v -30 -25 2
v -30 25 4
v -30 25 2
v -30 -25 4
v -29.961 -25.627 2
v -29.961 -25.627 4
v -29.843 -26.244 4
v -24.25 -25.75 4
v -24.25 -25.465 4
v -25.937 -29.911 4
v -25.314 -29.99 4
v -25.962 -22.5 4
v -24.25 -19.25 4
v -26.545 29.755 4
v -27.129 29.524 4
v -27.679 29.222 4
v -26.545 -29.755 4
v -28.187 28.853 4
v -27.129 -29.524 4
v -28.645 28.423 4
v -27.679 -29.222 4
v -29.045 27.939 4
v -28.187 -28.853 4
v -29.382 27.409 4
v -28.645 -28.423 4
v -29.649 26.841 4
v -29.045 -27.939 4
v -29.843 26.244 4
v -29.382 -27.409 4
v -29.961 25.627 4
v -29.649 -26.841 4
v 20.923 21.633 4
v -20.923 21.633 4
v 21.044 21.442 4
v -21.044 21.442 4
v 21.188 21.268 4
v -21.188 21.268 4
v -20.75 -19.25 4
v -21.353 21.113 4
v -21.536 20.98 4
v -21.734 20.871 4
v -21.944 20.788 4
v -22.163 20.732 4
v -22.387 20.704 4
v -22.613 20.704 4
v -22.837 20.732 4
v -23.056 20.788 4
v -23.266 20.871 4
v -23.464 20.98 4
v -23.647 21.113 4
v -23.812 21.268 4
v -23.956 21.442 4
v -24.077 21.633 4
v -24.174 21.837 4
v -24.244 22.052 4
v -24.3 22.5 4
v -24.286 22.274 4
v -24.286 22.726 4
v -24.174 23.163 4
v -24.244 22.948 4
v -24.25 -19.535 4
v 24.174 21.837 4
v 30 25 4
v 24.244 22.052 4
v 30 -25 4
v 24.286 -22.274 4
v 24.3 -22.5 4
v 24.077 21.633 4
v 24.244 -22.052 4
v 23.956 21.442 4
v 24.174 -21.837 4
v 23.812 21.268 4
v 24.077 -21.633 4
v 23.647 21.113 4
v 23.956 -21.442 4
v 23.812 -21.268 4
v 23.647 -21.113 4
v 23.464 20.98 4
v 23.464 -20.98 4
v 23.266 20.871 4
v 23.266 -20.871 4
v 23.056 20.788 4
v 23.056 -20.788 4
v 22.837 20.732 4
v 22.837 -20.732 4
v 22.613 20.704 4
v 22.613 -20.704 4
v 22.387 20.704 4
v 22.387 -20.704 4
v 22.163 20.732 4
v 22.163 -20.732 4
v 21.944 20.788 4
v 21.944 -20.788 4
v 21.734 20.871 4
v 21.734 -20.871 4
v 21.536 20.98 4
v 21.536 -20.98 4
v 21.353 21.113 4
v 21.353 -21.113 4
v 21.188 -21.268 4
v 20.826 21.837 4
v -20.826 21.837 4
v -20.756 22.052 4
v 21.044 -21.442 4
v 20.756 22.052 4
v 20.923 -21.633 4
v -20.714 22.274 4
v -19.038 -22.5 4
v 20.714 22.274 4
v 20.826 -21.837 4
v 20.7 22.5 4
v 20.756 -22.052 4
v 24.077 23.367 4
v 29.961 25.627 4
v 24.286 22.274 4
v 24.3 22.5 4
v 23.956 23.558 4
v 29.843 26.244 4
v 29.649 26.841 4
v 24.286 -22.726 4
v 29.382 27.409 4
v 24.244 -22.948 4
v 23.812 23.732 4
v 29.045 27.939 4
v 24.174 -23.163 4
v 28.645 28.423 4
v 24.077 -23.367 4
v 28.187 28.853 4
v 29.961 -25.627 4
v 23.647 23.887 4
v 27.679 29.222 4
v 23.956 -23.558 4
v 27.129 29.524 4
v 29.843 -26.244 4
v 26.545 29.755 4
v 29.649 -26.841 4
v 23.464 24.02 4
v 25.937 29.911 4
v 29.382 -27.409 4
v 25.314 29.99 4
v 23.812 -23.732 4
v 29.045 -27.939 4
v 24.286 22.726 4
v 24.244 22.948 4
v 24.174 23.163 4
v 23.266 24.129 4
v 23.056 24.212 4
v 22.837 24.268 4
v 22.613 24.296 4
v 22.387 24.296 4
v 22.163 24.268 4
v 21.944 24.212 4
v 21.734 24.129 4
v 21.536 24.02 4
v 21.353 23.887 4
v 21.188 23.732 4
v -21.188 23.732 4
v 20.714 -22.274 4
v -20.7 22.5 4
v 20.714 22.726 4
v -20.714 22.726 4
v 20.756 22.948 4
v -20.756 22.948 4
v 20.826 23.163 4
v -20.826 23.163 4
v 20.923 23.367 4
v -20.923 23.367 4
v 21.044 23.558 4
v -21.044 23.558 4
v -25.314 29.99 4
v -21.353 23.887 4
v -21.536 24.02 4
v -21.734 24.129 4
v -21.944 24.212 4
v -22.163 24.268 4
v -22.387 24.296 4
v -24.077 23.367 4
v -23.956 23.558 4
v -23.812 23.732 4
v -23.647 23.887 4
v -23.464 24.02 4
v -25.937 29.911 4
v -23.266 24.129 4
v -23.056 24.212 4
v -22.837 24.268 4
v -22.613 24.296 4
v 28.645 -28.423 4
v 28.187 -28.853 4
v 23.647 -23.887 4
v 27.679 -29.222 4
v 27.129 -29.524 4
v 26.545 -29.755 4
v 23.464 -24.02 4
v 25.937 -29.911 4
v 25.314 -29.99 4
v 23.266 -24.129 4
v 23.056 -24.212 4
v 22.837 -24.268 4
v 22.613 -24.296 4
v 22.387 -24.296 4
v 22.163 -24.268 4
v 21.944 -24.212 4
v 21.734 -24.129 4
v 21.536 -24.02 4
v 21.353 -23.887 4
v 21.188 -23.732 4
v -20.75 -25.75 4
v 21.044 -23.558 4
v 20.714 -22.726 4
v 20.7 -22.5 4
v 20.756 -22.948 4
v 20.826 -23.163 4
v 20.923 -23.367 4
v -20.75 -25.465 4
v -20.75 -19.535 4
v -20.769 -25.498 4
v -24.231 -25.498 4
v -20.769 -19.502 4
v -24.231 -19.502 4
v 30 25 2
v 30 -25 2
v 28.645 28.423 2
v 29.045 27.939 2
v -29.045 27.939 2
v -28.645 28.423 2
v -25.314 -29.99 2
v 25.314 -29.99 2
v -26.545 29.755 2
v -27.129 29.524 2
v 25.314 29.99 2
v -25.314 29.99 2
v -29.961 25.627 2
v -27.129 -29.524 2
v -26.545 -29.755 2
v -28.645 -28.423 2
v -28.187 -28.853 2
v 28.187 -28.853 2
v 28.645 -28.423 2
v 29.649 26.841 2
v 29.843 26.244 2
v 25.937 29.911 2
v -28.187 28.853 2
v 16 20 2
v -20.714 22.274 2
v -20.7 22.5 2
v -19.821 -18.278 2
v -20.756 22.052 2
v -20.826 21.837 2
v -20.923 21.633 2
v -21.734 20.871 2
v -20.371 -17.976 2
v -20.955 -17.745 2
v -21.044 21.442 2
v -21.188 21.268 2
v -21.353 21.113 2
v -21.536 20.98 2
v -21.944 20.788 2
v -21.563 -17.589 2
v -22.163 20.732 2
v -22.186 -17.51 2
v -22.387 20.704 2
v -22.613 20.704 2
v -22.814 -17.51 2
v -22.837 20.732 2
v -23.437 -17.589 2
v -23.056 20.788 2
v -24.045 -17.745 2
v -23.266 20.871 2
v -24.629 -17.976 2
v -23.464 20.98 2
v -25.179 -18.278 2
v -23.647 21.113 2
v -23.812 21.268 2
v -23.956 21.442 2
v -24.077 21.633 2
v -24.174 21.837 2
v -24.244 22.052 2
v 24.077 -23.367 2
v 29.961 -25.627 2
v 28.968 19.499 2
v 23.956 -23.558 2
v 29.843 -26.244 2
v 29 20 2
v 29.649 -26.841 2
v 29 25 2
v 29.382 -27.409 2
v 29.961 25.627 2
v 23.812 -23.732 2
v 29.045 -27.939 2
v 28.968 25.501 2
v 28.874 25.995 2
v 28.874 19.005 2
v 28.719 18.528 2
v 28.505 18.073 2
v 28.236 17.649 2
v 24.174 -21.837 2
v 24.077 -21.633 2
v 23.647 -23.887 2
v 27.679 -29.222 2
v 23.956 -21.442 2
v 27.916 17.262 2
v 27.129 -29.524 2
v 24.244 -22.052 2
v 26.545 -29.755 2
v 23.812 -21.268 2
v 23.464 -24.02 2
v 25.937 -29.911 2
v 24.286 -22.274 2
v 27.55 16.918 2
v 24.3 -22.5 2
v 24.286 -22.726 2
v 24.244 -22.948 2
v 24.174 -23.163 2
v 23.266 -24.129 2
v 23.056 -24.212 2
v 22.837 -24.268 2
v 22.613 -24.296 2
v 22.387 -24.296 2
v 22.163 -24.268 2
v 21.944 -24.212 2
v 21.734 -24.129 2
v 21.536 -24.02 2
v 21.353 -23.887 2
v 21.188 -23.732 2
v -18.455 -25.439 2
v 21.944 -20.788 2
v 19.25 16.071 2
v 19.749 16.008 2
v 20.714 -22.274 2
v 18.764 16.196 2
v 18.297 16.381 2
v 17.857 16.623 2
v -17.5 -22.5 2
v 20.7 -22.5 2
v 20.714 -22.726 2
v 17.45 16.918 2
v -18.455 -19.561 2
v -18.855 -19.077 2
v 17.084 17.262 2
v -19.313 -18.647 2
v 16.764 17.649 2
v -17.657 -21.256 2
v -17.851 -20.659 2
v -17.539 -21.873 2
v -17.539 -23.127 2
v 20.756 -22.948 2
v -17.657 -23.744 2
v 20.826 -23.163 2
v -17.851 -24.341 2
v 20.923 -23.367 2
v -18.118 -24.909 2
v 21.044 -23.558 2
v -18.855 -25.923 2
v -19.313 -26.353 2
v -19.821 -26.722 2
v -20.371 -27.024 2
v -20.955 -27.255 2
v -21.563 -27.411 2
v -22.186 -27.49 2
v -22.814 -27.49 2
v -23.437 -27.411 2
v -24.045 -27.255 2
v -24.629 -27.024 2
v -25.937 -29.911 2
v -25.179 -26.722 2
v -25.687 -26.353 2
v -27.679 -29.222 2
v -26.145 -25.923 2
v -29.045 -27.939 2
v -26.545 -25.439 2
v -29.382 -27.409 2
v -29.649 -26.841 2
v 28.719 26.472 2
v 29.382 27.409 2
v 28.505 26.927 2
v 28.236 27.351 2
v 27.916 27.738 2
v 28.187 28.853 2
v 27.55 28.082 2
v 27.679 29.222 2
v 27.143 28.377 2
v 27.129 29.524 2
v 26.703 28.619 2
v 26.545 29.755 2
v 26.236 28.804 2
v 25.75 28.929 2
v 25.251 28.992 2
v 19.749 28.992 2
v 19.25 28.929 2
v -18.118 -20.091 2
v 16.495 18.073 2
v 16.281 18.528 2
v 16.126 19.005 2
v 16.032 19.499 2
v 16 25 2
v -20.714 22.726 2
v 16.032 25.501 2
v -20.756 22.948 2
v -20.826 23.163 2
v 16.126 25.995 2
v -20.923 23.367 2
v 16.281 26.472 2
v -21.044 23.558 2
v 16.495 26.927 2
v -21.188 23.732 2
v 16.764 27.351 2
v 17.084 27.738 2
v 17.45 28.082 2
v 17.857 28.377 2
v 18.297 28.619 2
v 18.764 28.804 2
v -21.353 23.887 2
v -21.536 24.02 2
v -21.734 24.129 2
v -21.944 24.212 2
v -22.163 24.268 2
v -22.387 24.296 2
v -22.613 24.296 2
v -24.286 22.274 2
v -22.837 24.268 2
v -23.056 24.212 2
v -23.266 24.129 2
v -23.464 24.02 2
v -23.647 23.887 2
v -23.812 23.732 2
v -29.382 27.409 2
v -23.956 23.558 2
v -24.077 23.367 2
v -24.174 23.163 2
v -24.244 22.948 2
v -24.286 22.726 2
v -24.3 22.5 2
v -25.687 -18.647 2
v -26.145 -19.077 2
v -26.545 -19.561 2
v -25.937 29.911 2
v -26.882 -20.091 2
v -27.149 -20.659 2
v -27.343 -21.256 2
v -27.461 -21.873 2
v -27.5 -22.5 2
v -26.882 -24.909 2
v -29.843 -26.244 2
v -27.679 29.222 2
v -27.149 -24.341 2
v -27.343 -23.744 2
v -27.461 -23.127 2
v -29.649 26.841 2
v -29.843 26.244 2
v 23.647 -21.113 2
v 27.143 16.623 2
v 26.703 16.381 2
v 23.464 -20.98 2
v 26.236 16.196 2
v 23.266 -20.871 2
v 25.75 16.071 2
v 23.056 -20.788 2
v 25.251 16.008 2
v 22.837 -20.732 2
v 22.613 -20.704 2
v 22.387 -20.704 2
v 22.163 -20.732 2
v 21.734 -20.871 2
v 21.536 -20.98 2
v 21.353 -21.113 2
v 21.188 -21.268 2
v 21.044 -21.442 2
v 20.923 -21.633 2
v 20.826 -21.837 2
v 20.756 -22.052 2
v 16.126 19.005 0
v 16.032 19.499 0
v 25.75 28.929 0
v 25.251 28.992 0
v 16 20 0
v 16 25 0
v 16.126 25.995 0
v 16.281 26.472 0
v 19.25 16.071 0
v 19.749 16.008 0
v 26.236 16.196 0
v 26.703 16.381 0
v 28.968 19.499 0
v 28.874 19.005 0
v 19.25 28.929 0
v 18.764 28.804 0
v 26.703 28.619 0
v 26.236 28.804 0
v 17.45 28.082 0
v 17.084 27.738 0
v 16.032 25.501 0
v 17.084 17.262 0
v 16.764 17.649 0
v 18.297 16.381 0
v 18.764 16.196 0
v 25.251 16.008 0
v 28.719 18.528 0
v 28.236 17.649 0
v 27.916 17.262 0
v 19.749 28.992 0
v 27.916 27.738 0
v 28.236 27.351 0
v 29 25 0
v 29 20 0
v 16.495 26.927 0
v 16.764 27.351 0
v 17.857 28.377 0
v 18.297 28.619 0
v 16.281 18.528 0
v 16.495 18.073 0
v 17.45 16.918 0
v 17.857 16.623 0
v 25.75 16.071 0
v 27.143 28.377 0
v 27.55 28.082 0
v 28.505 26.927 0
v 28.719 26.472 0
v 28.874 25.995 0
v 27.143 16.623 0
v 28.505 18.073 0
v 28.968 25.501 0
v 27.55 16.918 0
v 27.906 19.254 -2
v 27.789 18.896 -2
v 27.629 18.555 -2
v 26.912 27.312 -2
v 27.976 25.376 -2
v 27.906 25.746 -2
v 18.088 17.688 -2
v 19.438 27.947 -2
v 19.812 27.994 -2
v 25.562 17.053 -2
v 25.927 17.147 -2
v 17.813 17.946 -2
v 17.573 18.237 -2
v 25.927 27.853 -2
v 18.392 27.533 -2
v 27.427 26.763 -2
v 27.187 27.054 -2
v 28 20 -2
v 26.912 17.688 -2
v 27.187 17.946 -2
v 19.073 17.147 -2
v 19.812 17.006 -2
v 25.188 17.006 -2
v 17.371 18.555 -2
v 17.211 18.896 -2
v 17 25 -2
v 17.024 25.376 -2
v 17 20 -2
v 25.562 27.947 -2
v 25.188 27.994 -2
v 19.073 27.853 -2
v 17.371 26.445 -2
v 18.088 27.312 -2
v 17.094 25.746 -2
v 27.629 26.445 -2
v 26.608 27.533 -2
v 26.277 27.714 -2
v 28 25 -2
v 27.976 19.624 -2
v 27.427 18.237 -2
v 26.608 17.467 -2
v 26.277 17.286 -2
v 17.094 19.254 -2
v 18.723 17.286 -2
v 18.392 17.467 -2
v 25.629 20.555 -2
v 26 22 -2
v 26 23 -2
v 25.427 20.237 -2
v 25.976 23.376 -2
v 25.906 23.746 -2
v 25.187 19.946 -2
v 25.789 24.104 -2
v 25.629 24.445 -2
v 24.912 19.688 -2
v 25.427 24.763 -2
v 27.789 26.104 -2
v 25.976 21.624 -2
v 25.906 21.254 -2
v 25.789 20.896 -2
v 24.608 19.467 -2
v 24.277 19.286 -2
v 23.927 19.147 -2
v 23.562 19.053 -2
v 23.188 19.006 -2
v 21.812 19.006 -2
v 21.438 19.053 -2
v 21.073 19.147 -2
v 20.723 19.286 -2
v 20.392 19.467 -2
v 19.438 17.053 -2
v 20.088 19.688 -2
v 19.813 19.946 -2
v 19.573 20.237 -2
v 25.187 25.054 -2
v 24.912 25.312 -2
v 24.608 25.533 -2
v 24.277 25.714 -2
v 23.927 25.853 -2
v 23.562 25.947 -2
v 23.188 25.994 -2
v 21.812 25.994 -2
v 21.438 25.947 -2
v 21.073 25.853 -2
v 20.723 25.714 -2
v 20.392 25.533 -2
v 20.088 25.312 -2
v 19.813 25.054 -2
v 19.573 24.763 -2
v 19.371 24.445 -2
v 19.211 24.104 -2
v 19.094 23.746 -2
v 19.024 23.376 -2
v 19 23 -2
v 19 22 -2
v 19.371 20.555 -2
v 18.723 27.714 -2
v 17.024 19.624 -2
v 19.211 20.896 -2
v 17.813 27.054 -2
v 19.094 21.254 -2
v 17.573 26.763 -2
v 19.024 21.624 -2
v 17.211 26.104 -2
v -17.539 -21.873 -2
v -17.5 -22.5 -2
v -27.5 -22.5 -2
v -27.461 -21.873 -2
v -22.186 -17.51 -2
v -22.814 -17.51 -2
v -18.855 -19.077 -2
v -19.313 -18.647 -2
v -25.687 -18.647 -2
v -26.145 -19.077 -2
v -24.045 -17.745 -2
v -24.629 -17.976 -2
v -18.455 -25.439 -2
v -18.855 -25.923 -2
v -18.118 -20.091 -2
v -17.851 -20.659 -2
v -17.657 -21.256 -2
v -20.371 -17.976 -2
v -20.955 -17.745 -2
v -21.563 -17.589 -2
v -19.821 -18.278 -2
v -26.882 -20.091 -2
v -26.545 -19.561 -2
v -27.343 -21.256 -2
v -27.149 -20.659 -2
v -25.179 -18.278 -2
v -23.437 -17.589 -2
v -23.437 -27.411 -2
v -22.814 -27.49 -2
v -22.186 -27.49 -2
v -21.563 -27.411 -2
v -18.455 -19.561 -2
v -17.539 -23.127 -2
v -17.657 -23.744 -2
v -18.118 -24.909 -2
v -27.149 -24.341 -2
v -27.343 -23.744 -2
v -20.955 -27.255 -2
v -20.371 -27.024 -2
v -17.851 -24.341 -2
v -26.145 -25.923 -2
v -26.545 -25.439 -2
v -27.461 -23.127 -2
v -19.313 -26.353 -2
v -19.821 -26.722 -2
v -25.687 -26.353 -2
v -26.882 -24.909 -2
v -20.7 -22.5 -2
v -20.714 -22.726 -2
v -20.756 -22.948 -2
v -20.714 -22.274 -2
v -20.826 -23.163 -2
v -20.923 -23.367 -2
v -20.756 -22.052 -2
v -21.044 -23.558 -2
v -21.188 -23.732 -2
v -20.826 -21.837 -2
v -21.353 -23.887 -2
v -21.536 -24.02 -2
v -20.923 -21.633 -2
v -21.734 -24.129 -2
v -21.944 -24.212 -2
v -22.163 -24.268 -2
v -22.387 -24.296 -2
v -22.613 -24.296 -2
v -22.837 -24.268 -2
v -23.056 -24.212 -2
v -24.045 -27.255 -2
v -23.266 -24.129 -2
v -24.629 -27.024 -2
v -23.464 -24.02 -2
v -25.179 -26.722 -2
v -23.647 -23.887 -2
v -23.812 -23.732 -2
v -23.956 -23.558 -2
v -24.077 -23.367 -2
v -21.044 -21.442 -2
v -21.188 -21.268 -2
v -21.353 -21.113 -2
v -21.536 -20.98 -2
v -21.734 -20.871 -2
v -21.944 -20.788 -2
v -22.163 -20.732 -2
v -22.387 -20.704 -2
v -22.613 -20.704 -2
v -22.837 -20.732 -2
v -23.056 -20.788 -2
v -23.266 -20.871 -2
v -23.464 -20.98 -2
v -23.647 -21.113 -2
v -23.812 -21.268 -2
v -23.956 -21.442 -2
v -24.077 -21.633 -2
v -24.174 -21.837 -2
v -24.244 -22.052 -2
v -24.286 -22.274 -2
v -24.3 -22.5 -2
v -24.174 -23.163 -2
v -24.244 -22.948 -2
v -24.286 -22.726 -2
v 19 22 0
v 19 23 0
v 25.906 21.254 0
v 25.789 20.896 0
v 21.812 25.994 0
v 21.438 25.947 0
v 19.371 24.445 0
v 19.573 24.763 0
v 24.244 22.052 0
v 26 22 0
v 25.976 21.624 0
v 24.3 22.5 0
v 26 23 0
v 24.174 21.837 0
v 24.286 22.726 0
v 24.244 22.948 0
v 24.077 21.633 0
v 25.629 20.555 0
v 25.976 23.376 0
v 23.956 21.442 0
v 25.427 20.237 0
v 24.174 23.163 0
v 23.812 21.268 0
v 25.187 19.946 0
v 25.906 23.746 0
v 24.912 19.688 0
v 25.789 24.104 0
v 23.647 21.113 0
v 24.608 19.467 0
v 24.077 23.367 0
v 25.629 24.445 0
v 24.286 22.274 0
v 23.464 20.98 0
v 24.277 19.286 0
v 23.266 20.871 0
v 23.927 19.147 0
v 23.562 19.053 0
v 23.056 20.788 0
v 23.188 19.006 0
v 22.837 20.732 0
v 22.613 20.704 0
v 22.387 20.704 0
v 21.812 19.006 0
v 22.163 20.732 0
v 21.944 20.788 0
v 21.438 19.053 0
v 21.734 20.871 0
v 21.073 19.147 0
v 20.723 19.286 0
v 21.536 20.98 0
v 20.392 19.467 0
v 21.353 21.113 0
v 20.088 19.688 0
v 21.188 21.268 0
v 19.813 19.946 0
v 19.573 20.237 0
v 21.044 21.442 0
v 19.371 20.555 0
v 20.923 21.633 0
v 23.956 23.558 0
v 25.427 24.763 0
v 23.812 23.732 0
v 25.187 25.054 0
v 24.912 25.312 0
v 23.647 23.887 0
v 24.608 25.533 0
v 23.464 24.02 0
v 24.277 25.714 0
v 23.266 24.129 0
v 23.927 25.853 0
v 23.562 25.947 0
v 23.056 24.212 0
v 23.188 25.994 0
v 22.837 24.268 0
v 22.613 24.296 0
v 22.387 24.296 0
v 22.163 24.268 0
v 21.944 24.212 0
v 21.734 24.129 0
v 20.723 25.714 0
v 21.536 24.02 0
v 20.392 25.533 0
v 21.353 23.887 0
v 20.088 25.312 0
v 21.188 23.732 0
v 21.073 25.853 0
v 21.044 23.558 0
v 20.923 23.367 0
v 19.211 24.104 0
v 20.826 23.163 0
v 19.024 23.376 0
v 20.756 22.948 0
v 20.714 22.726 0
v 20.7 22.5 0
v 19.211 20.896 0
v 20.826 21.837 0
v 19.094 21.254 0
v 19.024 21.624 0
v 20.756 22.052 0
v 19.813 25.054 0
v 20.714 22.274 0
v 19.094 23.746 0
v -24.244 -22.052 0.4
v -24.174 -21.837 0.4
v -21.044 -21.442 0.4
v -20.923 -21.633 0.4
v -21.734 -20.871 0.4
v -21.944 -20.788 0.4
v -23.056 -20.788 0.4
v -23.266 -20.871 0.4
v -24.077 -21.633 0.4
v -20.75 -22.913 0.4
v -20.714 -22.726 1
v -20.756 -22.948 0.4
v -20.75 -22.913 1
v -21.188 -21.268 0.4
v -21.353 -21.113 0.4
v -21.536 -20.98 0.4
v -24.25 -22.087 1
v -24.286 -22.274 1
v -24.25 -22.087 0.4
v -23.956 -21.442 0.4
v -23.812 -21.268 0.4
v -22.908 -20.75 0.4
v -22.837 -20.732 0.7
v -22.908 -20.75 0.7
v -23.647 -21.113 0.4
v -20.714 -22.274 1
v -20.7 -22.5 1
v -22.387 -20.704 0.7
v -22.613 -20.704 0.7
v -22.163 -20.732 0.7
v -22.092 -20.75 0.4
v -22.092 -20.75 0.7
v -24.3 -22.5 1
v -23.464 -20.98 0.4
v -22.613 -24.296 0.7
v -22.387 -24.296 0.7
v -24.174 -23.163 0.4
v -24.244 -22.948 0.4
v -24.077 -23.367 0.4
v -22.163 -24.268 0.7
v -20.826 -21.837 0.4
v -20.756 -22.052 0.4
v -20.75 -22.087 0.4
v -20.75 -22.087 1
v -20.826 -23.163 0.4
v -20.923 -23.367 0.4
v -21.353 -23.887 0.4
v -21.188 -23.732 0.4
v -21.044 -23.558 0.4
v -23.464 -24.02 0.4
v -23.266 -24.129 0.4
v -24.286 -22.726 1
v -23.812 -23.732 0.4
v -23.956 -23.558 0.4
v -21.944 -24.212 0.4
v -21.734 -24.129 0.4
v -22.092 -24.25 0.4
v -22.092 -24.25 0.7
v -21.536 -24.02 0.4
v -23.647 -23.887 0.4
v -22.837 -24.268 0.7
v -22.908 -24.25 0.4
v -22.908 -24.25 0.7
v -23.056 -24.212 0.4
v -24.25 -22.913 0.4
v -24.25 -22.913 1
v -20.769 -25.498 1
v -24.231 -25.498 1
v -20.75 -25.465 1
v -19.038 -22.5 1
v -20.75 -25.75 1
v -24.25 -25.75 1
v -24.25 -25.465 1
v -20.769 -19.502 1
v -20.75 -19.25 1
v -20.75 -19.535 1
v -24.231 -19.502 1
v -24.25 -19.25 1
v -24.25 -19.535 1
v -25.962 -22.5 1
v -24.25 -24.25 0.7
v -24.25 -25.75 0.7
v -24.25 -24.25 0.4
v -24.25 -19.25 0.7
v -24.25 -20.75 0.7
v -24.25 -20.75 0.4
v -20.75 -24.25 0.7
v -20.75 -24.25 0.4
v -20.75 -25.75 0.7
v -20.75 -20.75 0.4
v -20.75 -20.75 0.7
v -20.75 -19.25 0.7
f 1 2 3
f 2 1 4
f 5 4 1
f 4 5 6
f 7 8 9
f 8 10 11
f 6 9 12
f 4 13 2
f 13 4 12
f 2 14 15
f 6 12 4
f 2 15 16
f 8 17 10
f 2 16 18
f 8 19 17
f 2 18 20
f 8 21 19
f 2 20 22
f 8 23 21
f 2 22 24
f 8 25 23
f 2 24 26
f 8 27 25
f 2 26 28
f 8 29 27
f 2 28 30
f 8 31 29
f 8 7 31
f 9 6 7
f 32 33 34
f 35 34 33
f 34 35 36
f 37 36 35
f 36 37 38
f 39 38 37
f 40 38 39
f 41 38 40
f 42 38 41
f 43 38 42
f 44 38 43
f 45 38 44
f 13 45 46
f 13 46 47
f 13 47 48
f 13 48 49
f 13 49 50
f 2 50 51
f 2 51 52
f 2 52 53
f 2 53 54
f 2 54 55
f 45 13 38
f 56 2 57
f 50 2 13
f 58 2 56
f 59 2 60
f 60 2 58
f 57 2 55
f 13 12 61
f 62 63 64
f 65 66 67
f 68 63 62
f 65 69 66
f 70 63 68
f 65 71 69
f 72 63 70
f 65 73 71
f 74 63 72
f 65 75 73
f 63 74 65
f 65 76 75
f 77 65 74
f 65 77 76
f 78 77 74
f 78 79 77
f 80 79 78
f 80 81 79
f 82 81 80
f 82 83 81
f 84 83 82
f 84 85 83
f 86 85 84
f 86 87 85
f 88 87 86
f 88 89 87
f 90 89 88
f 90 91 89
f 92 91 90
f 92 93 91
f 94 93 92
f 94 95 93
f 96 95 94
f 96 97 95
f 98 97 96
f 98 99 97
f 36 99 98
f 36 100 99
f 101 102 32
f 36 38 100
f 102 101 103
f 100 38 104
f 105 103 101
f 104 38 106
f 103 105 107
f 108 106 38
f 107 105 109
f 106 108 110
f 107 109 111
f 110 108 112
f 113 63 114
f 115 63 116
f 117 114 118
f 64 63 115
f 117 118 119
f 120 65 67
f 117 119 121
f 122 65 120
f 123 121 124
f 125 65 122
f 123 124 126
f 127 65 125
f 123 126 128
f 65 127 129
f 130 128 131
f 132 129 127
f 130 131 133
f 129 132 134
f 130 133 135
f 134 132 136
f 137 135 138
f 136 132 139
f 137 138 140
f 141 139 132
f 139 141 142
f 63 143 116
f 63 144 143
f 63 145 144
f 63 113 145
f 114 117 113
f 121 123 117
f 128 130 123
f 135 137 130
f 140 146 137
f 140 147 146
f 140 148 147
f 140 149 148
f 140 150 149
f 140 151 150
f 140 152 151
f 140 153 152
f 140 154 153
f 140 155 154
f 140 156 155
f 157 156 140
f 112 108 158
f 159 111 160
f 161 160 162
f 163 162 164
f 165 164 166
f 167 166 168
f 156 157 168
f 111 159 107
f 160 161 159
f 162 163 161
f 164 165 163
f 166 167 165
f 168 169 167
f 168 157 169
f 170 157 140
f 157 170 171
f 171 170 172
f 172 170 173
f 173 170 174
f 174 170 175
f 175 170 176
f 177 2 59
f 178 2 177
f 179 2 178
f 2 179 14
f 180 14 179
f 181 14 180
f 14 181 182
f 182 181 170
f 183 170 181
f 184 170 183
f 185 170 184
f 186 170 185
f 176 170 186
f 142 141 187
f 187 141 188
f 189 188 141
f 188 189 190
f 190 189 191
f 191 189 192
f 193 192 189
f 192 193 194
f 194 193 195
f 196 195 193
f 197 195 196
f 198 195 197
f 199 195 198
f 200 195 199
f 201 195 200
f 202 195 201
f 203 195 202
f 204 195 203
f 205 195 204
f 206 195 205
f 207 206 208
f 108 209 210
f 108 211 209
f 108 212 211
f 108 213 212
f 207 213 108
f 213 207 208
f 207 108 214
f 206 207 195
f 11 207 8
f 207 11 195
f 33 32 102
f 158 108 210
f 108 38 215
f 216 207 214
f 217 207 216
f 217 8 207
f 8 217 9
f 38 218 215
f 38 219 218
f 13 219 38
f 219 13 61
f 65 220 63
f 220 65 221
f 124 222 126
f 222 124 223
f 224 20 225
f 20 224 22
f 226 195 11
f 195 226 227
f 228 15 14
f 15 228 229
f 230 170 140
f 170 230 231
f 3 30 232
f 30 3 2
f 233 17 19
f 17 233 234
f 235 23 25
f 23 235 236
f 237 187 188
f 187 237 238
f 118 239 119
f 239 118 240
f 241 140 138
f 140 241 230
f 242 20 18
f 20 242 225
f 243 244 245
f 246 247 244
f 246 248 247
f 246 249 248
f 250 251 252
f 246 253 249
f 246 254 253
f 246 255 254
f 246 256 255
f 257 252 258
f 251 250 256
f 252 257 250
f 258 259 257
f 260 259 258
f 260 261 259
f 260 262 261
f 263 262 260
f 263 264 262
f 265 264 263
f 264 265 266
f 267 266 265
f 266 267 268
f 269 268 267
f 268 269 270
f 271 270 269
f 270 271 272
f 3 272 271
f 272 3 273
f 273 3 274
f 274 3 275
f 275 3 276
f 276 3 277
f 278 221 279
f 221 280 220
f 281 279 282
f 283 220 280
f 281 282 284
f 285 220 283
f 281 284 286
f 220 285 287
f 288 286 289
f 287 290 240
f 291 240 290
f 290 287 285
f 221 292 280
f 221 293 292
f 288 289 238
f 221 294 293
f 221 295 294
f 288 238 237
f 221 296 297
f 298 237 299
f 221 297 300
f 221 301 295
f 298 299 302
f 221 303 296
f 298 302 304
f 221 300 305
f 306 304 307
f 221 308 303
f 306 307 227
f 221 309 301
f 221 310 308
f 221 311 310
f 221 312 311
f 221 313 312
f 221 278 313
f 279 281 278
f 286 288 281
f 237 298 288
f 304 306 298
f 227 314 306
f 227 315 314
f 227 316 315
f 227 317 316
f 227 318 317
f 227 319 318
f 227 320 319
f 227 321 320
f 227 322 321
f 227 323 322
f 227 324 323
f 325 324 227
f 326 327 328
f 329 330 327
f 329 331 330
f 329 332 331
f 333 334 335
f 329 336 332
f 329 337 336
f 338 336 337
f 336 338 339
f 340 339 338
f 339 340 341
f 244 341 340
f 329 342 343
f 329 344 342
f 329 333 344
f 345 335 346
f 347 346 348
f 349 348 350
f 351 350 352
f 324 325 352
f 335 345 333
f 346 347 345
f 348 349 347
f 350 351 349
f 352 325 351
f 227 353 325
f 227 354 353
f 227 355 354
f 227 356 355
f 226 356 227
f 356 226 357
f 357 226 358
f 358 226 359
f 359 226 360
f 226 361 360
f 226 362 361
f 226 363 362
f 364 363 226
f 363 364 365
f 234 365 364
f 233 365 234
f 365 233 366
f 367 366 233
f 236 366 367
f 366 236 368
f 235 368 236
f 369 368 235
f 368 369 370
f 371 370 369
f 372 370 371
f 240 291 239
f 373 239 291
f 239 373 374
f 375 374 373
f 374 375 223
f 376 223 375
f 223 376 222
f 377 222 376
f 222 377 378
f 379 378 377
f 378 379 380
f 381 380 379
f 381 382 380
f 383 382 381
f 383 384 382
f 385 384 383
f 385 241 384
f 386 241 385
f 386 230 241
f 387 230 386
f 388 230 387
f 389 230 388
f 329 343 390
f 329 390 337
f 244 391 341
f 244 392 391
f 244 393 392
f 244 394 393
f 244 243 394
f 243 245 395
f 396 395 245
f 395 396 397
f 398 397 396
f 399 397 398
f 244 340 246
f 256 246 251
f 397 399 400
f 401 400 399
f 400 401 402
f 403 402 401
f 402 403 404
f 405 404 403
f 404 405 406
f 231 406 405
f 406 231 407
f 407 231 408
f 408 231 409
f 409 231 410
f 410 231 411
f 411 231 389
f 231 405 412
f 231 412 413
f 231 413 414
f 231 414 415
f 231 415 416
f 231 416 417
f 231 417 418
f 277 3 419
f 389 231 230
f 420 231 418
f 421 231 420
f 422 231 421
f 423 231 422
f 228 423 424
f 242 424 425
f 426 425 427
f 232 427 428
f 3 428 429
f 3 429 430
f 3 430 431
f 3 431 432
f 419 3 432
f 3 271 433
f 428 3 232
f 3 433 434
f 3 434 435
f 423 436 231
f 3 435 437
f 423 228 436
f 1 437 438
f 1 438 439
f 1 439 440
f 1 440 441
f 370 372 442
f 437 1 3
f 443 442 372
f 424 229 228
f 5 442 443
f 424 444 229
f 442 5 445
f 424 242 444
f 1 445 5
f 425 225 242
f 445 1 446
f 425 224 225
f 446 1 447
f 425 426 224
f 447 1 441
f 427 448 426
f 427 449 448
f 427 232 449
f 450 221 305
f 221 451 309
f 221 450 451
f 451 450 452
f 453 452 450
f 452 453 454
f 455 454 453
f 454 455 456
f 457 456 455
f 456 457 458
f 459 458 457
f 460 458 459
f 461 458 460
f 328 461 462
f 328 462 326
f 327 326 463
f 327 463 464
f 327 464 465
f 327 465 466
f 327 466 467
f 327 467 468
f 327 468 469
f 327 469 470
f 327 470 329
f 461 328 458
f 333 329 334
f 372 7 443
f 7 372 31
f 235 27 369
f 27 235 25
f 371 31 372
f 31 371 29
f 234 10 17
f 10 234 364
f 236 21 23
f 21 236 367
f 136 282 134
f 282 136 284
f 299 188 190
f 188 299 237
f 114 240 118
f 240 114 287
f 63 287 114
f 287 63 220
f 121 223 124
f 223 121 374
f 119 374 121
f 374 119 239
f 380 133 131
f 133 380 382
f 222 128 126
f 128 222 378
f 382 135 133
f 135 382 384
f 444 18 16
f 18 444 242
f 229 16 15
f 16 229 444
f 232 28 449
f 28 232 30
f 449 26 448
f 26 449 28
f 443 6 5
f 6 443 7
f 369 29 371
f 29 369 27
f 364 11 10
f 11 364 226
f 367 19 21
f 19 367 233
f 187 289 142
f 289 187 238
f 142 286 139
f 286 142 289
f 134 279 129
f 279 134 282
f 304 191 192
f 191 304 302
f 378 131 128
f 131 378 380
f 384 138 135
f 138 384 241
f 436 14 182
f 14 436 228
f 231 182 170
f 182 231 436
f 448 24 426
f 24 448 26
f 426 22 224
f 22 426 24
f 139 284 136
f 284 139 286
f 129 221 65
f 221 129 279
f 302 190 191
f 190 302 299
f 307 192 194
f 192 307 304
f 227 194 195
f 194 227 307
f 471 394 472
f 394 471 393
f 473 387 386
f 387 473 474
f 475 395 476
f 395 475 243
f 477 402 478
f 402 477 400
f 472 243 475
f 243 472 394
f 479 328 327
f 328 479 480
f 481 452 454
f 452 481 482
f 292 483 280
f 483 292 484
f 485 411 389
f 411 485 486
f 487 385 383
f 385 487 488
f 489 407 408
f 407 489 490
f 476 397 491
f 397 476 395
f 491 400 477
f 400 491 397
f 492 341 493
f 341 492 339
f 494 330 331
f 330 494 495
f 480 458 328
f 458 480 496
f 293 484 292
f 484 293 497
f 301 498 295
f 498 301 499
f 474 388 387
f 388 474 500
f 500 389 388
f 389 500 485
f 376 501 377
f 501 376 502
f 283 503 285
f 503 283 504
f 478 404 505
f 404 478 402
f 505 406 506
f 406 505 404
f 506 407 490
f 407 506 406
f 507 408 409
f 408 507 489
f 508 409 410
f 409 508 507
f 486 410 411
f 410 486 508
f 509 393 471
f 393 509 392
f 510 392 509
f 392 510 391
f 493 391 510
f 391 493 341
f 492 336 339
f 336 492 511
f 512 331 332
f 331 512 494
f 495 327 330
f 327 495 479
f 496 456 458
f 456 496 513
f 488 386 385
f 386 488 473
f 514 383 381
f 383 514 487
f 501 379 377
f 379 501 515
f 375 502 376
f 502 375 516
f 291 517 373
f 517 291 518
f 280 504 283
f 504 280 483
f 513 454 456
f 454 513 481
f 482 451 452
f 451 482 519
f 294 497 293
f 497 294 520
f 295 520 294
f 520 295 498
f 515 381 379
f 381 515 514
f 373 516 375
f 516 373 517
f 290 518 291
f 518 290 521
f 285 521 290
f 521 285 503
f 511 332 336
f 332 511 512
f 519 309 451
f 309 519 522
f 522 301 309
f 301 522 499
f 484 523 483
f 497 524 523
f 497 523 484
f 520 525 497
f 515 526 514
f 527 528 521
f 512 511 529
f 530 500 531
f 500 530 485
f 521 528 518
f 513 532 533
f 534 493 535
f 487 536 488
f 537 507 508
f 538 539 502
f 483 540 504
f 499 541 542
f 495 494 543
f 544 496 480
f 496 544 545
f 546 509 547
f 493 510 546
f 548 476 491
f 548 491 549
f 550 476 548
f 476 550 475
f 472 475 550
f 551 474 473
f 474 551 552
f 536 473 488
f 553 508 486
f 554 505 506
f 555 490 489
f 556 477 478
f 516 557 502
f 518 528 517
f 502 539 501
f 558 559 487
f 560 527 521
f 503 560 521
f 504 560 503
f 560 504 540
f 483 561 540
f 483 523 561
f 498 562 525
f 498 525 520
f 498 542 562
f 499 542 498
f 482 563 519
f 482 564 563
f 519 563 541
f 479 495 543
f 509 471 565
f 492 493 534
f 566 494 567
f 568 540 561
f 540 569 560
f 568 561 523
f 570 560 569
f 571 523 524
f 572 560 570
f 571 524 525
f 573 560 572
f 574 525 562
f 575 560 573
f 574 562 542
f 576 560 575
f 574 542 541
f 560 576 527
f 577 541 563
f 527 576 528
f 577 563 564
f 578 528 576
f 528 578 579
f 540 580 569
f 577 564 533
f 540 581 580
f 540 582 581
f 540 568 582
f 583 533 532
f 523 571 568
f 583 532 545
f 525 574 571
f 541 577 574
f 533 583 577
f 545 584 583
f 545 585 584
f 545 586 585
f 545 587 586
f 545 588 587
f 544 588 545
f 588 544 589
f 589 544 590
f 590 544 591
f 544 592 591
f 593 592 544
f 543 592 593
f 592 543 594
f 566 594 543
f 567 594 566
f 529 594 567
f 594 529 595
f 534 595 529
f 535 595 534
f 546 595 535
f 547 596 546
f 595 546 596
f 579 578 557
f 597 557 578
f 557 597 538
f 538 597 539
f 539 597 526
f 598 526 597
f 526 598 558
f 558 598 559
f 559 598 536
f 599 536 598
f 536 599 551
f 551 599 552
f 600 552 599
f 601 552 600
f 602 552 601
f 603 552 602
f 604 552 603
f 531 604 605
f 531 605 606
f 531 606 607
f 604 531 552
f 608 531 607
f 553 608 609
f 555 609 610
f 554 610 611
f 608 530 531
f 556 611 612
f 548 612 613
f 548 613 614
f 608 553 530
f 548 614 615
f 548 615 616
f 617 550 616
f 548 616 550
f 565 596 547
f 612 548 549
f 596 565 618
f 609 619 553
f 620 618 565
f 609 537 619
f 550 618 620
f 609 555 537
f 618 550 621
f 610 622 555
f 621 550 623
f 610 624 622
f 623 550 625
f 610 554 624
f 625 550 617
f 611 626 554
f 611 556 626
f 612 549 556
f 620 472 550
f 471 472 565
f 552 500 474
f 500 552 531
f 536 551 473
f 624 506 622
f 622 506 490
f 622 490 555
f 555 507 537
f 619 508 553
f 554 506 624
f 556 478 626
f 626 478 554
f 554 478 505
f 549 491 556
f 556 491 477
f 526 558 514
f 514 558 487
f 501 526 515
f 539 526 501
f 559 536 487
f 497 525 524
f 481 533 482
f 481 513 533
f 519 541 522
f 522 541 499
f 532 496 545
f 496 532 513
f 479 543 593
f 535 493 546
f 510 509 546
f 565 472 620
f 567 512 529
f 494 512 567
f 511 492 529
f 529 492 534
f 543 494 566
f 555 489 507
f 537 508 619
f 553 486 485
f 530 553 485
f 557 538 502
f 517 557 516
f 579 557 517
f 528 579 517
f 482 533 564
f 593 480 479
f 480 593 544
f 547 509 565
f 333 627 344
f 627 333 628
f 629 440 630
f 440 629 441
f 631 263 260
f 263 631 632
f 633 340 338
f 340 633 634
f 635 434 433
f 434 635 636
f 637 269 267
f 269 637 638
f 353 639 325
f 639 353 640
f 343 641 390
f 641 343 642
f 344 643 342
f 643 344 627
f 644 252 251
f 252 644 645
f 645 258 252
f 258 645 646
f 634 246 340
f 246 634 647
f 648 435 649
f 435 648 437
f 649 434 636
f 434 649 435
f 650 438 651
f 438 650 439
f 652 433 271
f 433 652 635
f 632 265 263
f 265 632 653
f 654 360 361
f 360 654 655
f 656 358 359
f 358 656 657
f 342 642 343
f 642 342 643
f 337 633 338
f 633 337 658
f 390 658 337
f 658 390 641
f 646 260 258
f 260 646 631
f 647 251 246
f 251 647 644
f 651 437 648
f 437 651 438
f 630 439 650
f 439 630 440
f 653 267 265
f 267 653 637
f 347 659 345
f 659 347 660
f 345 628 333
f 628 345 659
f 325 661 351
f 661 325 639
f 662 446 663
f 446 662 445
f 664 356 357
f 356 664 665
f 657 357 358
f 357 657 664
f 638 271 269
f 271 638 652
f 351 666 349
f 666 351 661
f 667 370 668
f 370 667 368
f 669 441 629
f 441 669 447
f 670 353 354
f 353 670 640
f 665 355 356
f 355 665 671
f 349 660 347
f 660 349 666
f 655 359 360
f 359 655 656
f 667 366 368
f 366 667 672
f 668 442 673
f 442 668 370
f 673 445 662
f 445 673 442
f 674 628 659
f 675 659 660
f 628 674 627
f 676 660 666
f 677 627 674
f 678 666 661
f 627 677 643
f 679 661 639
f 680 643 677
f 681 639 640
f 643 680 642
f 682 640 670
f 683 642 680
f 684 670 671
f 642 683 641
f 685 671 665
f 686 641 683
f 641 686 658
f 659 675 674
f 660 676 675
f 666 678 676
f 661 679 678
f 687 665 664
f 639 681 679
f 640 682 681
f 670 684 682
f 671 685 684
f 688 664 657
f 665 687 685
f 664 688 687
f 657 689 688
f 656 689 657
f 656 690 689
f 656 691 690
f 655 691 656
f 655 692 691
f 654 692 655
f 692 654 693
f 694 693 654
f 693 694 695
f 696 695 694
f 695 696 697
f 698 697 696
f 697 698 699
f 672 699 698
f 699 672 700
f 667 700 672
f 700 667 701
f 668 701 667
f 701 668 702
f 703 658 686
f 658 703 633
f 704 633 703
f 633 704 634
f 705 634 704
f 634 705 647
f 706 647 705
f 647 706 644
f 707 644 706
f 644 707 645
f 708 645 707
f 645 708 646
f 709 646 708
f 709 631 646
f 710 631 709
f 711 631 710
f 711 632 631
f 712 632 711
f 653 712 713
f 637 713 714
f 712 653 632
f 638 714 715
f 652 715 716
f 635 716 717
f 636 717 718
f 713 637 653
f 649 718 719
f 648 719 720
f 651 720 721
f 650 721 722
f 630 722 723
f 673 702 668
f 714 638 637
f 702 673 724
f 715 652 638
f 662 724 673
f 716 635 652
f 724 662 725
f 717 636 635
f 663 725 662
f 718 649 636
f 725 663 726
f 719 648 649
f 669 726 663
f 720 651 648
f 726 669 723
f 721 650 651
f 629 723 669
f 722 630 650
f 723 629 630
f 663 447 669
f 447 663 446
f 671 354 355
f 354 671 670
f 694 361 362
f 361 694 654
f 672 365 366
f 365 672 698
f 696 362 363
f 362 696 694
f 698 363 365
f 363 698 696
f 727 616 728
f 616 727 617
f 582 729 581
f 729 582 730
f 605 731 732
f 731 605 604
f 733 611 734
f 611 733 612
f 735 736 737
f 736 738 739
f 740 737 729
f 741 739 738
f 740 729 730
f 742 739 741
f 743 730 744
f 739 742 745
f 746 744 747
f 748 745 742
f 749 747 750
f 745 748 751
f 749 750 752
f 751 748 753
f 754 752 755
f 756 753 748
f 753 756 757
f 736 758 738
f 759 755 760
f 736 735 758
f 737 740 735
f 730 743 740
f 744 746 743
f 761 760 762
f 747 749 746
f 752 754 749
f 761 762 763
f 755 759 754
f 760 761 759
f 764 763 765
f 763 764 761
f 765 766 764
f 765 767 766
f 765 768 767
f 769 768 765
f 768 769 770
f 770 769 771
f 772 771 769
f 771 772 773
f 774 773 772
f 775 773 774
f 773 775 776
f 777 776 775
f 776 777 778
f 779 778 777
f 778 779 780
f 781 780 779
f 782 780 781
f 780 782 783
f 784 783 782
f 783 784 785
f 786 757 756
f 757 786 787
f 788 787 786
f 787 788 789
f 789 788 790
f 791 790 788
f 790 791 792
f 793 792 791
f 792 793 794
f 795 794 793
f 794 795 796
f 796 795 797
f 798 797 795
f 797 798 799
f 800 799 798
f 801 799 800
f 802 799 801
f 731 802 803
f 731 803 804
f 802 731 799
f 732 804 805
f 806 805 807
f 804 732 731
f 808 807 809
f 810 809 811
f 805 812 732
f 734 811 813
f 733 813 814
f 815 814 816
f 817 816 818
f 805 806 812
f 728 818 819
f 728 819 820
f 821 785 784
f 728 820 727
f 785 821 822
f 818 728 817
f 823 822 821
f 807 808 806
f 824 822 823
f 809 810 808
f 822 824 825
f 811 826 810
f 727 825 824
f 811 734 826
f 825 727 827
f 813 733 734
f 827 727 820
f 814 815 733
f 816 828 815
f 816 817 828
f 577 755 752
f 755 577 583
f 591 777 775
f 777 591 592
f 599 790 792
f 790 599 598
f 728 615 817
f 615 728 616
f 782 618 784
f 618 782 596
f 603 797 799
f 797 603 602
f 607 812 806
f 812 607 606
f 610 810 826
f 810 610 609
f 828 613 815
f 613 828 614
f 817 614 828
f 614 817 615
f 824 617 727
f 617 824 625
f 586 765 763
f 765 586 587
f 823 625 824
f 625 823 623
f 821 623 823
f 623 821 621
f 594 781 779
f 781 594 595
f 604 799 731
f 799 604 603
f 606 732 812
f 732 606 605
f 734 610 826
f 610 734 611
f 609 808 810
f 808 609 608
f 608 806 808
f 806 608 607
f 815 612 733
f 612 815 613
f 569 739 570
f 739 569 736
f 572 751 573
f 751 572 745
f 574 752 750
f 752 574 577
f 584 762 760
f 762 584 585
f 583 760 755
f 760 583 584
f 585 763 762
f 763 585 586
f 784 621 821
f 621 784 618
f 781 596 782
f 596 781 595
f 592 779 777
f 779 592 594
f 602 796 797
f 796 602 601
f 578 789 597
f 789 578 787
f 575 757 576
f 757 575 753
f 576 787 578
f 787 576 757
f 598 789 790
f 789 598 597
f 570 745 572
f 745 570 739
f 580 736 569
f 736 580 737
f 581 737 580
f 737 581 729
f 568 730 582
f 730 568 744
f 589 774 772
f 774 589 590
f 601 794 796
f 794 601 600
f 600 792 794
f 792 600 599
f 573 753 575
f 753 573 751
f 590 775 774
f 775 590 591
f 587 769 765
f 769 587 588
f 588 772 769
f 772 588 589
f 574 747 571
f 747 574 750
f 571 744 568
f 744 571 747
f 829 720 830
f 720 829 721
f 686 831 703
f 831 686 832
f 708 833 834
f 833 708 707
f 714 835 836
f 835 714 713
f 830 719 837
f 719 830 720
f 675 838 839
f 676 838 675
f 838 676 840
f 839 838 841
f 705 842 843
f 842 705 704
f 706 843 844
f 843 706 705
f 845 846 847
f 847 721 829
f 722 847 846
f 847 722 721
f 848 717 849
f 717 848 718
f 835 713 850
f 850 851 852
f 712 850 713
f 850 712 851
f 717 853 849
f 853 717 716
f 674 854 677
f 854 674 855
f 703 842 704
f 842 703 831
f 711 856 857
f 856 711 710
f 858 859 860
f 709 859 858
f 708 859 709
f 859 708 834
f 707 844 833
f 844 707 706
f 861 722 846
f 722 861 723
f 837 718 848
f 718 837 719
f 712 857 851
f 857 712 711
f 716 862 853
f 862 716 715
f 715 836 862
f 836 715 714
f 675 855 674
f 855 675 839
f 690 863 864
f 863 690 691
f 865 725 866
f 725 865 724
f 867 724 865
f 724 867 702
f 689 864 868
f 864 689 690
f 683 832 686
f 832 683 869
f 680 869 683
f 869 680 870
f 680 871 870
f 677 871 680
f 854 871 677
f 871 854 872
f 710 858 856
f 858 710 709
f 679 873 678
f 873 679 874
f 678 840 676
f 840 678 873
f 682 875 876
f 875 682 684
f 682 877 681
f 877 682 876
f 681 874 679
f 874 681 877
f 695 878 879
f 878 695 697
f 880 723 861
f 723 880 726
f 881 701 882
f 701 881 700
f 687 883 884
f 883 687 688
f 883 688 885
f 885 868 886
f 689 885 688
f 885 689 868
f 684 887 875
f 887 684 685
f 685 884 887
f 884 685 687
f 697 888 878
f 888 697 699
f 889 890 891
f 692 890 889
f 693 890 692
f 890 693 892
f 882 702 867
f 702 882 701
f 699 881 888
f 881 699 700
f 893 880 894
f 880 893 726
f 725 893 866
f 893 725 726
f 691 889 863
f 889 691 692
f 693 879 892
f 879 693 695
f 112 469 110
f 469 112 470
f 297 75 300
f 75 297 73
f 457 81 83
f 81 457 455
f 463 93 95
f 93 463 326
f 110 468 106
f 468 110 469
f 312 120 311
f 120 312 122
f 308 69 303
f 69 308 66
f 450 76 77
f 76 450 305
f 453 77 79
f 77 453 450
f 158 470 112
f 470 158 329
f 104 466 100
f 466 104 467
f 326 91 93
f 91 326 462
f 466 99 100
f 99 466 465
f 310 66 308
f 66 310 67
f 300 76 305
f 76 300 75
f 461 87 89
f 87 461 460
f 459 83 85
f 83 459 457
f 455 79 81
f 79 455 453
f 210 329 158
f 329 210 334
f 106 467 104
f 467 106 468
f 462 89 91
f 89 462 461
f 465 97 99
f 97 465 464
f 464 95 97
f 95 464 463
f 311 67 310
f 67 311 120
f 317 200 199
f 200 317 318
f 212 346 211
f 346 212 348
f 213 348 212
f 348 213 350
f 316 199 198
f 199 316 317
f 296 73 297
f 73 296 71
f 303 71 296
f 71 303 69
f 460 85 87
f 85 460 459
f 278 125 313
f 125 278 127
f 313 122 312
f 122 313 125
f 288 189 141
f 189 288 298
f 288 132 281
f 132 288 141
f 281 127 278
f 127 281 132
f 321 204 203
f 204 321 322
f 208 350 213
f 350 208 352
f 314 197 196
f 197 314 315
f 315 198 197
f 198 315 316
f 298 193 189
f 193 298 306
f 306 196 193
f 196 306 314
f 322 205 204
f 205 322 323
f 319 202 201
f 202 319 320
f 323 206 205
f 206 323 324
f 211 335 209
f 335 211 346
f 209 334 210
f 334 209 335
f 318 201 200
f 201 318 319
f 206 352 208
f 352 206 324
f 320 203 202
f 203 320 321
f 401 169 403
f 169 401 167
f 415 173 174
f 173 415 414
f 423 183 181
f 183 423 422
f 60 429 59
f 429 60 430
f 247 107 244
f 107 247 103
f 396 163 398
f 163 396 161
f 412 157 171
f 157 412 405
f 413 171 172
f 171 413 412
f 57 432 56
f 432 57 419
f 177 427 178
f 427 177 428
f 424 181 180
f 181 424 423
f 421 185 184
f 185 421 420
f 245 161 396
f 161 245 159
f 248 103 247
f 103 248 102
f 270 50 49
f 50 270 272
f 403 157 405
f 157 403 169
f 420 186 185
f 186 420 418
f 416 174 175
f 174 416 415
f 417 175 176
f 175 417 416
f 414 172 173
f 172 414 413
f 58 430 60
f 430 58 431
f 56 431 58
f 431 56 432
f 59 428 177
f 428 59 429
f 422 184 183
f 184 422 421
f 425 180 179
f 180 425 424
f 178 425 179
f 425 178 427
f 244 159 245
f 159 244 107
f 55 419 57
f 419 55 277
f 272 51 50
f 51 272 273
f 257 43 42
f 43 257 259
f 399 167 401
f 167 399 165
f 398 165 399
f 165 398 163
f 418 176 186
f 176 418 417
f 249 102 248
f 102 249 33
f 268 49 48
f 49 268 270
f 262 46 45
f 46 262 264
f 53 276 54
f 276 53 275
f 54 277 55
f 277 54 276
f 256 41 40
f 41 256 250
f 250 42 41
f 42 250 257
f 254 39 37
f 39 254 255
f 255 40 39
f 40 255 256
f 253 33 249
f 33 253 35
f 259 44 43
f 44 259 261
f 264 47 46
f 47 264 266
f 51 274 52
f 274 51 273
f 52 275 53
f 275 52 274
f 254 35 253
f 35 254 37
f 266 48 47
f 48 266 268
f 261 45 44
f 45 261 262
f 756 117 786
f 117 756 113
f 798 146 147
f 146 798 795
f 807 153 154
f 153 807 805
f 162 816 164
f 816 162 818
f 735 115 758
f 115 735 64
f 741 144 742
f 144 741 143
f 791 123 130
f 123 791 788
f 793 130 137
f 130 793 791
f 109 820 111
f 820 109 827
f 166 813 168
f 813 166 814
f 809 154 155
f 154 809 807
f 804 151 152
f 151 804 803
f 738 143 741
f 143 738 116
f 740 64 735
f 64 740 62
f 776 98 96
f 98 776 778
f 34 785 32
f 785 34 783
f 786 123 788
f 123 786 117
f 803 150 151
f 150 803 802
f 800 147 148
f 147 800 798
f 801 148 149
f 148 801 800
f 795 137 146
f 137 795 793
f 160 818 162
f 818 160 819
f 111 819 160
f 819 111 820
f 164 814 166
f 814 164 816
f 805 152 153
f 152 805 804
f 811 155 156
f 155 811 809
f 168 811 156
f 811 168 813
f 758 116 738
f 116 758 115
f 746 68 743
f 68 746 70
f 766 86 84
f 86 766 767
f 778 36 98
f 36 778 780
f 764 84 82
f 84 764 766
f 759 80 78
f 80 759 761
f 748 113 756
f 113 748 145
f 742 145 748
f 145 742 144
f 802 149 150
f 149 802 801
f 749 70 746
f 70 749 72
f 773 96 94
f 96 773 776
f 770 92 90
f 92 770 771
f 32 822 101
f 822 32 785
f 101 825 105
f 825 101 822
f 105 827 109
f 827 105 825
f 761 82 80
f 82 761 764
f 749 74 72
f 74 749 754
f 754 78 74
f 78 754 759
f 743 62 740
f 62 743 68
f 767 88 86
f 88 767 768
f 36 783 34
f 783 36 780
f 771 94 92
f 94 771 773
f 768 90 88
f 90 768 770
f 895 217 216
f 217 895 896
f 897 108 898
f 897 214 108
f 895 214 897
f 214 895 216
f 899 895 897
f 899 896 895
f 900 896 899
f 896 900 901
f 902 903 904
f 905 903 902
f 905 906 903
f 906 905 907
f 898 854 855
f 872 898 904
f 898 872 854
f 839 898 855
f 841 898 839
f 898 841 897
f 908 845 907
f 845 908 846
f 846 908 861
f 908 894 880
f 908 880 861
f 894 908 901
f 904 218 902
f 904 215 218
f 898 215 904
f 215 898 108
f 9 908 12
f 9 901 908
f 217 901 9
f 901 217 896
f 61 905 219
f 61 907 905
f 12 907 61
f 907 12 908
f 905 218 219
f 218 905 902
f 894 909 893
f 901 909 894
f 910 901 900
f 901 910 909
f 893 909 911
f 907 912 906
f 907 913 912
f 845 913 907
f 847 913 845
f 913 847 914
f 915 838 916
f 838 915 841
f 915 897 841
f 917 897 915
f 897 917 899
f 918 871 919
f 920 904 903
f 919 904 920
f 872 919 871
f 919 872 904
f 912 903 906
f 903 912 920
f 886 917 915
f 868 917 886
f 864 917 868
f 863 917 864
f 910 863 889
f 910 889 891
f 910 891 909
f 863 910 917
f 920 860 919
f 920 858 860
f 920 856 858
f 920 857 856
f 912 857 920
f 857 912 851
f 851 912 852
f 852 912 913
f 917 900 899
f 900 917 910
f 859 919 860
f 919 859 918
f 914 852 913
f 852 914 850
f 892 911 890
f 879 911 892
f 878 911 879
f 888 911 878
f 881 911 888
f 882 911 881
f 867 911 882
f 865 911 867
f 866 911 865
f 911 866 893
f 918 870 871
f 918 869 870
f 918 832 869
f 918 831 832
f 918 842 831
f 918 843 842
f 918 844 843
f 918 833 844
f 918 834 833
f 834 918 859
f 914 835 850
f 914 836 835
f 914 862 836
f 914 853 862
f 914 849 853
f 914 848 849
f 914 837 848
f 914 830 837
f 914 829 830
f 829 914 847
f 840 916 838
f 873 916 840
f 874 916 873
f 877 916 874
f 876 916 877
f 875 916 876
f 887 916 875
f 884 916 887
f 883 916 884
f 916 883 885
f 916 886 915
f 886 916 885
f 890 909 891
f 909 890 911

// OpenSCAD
$fn = 50;


difference() {
	union() {
		translate(v = [0, 0, 2]) {
			rotate(a = [0, 0, 0]) {
				hull() {
					translate(v = [-25.0000000000, 25.0000000000, 0]) {
						rotate(a = [0, 0, 0]) {
							translate(v = [0, 0, 0]) {
								rotate(a = [0, 0, 0]) {
									cylinder(h = 2, r = 5);
								}
							}
						}
					}
					translate(v = [25.0000000000, 25.0000000000, 0]) {
						rotate(a = [0, 0, 0]) {
							translate(v = [0, 0, 0]) {
								rotate(a = [0, 0, 0]) {
									cylinder(h = 2, r = 5);
								}
							}
						}
					}
					translate(v = [-25.0000000000, -25.0000000000, 0]) {
						rotate(a = [0, 0, 0]) {
							translate(v = [0, 0, 0]) {
								rotate(a = [0, 0, 0]) {
									cylinder(h = 2, r = 5);
								}
							}
						}
					}
					translate(v = [25.0000000000, -25.0000000000, 0]) {
						rotate(a = [0, 0, 0]) {
							translate(v = [0, 0, 0]) {
								rotate(a = [0, 0, 0]) {
									cylinder(h = 2, r = 5);
								}
							}
						}
					}
				}
			}
		}
		translate(v = [22.5000000000, 22.5000000000, 0]) {
			rotate(a = [0, 0, 0]) {
				hull() {
					translate(v = [-2.5000000000, 2.5000000000, 0]) {
						rotate(a = [0, 0, 0]) {
							cylinder(h = 2, r1 = 4.0000000000, r2 = 4.0000000000);
						}
					}
					translate(v = [2.5000000000, 2.5000000000, 0]) {
						rotate(a = [0, 0, 0]) {
							cylinder(h = 2, r1 = 4.0000000000, r2 = 4.0000000000);
						}
					}
					translate(v = [-2.5000000000, -2.5000000000, 0]) {
						rotate(a = [0, 0, 0]) {
							cylinder(h = 2, r1 = 4.0000000000, r2 = 4.0000000000);
						}
					}
					translate(v = [2.5000000000, -2.5000000000, 0]) {
						rotate(a = [0, 0, 0]) {
							cylinder(h = 2, r1 = 4.0000000000, r2 = 4.0000000000);
						}
					}
				}
			}
		}
		translate(v = [22.5000000000, 22.5000000000, -2]) {
			rotate(a = [0, 180, 0]) {
				hull() {
					translate(v = [-2.5000000000, 2.5000000000, 0]) {
						rotate(a = [0, 180, 0]) {
							cylinder(h = 2, r1 = 3.0000000000, r2 = 4.0000000000);
						}
					}
					translate(v = [2.5000000000, 2.5000000000, 0]) {
						rotate(a = [0, 180, 0]) {
							cylinder(h = 2, r1 = 3.0000000000, r2 = 4.0000000000);
						}
					}
					translate(v = [-2.5000000000, -2.5000000000, 0]) {
						rotate(a = [0, 180, 0]) {
							cylinder(h = 2, r1 = 3.0000000000, r2 = 4.0000000000);
						}
					}
					translate(v = [2.5000000000, -2.5000000000, 0]) {
						rotate(a = [0, 180, 0]) {
							cylinder(h = 2, r1 = 3.0000000000, r2 = 4.0000000000);
						}
					}
				}
			}
		}
		translate(v = [-22.5000000000, -22.5000000000, -2.0000000000]) {
			rotate(a = [0, 0, 0]) {
				cylinder(h = 4, r = 5);
			}
		}
	}
	union() {
		translate(v = [22.5000000000, 22.5000000000, -2]) {
			rotate(a = [0, 0, 0]) {
				hull() {
					translate(v = [-0.5000000000, 0.5000000000, 0]) {
						rotate(a = [0, 0, 0]) {
							translate(v = [0, 0, 0]) {
								rotate(a = [0, 0, 0]) {
									cylinder(h = 2, r = 3.0000000000);
								}
							}
						}
					}
					translate(v = [0.5000000000, 0.5000000000, 0]) {
						rotate(a = [0, 0, 0]) {
							translate(v = [0, 0, 0]) {
								rotate(a = [0, 0, 0]) {
									cylinder(h = 2, r = 3.0000000000);
								}
							}
						}
					}
					translate(v = [-0.5000000000, -0.5000000000, 0]) {
						rotate(a = [0, 0, 0]) {
							translate(v = [0, 0, 0]) {
								rotate(a = [0, 0, 0]) {
									cylinder(h = 2, r = 3.0000000000);
								}
							}
						}
					}
					translate(v = [0.5000000000, -0.5000000000, 0]) {
						rotate(a = [0, 0, 0]) {
							translate(v = [0, 0, 0]) {
								rotate(a = [0, 0, 0]) {
									cylinder(h = 2, r = 3.0000000000);
								}
							}
						}
					}
				}
			}
		}
		translate(v = [-22.5000000000, -22.5000000000, -50]) {
			rotate(a = [0, 0, 0]) {
				cylinder(h = 100, r = 1.8000000000);
			}
		}
		translate(v = [22.5000000000, -22.5000000000, -50]) {
			rotate(a = [0, 0, 0]) {
				cylinder(h = 100, r = 1.8000000000);
			}
		}
		translate(v = [-22.5000000000, 22.5000000000, -50]) {
			rotate(a = [0, 0, 0]) {
				cylinder(h = 100, r = 1.8000000000);
			}
		}
		translate(v = [22.5000000000, 22.5000000000, -50]) {
			rotate(a = [0, 0, 0]) {
				cylinder(h = 100, r = 1.8000000000);
			}
		}
		translate(v = [-22.5000000000, -22.5000000000, 1]) {
			rotate(a = [0, 0, 0]) {
				#translate(v = [0, 0, 0]) {
					rotate(a = [0, 0, 0]) {
						linear_extrude(height = 3) {
							polygon(points = [[3.4620000000, 0.0000000000], [1.7310000000, 2.9981799479], [-1.7310000000, 2.9981799479], [-3.4620000000, 0.0000000000], [-1.7310000000, -2.9981799479], [1.7310000000, -2.9981799479]]);
						}
					}
				}
			}
		}
		#translate(v = [-24.2500000000, -25.7500000000, 4]) {
			rotate(a = [0, 0, 0]) {
				cube(size = [3.5000000000, 6.5000000000, 0.3000000000]);
			}
		}
		#translate(v = [-24.2500000000, -24.2500000000, 4.3000000000]) {
			rotate(a = [0, 0, 0]) {
				cube(size = [3.5000000000, 3.5000000000, 0.3000000000]);
			}
		}
		#translate(v = [-24.2500000000, -25.7500000000, 0.7000000000]) {
			rotate(a = [0, 0, 0]) {
				cube(size = [3.5000000000, 6.5000000000, 0.3000000000]);
			}
		}
		#translate(v = [-24.2500000000, -24.2500000000, 0.4000000000]) {
			rotate(a = [0, 0, 0]) {
				cube(size = [3.5000000000, 3.5000000000, 0.3000000000]);
			}
		}
	}
}
